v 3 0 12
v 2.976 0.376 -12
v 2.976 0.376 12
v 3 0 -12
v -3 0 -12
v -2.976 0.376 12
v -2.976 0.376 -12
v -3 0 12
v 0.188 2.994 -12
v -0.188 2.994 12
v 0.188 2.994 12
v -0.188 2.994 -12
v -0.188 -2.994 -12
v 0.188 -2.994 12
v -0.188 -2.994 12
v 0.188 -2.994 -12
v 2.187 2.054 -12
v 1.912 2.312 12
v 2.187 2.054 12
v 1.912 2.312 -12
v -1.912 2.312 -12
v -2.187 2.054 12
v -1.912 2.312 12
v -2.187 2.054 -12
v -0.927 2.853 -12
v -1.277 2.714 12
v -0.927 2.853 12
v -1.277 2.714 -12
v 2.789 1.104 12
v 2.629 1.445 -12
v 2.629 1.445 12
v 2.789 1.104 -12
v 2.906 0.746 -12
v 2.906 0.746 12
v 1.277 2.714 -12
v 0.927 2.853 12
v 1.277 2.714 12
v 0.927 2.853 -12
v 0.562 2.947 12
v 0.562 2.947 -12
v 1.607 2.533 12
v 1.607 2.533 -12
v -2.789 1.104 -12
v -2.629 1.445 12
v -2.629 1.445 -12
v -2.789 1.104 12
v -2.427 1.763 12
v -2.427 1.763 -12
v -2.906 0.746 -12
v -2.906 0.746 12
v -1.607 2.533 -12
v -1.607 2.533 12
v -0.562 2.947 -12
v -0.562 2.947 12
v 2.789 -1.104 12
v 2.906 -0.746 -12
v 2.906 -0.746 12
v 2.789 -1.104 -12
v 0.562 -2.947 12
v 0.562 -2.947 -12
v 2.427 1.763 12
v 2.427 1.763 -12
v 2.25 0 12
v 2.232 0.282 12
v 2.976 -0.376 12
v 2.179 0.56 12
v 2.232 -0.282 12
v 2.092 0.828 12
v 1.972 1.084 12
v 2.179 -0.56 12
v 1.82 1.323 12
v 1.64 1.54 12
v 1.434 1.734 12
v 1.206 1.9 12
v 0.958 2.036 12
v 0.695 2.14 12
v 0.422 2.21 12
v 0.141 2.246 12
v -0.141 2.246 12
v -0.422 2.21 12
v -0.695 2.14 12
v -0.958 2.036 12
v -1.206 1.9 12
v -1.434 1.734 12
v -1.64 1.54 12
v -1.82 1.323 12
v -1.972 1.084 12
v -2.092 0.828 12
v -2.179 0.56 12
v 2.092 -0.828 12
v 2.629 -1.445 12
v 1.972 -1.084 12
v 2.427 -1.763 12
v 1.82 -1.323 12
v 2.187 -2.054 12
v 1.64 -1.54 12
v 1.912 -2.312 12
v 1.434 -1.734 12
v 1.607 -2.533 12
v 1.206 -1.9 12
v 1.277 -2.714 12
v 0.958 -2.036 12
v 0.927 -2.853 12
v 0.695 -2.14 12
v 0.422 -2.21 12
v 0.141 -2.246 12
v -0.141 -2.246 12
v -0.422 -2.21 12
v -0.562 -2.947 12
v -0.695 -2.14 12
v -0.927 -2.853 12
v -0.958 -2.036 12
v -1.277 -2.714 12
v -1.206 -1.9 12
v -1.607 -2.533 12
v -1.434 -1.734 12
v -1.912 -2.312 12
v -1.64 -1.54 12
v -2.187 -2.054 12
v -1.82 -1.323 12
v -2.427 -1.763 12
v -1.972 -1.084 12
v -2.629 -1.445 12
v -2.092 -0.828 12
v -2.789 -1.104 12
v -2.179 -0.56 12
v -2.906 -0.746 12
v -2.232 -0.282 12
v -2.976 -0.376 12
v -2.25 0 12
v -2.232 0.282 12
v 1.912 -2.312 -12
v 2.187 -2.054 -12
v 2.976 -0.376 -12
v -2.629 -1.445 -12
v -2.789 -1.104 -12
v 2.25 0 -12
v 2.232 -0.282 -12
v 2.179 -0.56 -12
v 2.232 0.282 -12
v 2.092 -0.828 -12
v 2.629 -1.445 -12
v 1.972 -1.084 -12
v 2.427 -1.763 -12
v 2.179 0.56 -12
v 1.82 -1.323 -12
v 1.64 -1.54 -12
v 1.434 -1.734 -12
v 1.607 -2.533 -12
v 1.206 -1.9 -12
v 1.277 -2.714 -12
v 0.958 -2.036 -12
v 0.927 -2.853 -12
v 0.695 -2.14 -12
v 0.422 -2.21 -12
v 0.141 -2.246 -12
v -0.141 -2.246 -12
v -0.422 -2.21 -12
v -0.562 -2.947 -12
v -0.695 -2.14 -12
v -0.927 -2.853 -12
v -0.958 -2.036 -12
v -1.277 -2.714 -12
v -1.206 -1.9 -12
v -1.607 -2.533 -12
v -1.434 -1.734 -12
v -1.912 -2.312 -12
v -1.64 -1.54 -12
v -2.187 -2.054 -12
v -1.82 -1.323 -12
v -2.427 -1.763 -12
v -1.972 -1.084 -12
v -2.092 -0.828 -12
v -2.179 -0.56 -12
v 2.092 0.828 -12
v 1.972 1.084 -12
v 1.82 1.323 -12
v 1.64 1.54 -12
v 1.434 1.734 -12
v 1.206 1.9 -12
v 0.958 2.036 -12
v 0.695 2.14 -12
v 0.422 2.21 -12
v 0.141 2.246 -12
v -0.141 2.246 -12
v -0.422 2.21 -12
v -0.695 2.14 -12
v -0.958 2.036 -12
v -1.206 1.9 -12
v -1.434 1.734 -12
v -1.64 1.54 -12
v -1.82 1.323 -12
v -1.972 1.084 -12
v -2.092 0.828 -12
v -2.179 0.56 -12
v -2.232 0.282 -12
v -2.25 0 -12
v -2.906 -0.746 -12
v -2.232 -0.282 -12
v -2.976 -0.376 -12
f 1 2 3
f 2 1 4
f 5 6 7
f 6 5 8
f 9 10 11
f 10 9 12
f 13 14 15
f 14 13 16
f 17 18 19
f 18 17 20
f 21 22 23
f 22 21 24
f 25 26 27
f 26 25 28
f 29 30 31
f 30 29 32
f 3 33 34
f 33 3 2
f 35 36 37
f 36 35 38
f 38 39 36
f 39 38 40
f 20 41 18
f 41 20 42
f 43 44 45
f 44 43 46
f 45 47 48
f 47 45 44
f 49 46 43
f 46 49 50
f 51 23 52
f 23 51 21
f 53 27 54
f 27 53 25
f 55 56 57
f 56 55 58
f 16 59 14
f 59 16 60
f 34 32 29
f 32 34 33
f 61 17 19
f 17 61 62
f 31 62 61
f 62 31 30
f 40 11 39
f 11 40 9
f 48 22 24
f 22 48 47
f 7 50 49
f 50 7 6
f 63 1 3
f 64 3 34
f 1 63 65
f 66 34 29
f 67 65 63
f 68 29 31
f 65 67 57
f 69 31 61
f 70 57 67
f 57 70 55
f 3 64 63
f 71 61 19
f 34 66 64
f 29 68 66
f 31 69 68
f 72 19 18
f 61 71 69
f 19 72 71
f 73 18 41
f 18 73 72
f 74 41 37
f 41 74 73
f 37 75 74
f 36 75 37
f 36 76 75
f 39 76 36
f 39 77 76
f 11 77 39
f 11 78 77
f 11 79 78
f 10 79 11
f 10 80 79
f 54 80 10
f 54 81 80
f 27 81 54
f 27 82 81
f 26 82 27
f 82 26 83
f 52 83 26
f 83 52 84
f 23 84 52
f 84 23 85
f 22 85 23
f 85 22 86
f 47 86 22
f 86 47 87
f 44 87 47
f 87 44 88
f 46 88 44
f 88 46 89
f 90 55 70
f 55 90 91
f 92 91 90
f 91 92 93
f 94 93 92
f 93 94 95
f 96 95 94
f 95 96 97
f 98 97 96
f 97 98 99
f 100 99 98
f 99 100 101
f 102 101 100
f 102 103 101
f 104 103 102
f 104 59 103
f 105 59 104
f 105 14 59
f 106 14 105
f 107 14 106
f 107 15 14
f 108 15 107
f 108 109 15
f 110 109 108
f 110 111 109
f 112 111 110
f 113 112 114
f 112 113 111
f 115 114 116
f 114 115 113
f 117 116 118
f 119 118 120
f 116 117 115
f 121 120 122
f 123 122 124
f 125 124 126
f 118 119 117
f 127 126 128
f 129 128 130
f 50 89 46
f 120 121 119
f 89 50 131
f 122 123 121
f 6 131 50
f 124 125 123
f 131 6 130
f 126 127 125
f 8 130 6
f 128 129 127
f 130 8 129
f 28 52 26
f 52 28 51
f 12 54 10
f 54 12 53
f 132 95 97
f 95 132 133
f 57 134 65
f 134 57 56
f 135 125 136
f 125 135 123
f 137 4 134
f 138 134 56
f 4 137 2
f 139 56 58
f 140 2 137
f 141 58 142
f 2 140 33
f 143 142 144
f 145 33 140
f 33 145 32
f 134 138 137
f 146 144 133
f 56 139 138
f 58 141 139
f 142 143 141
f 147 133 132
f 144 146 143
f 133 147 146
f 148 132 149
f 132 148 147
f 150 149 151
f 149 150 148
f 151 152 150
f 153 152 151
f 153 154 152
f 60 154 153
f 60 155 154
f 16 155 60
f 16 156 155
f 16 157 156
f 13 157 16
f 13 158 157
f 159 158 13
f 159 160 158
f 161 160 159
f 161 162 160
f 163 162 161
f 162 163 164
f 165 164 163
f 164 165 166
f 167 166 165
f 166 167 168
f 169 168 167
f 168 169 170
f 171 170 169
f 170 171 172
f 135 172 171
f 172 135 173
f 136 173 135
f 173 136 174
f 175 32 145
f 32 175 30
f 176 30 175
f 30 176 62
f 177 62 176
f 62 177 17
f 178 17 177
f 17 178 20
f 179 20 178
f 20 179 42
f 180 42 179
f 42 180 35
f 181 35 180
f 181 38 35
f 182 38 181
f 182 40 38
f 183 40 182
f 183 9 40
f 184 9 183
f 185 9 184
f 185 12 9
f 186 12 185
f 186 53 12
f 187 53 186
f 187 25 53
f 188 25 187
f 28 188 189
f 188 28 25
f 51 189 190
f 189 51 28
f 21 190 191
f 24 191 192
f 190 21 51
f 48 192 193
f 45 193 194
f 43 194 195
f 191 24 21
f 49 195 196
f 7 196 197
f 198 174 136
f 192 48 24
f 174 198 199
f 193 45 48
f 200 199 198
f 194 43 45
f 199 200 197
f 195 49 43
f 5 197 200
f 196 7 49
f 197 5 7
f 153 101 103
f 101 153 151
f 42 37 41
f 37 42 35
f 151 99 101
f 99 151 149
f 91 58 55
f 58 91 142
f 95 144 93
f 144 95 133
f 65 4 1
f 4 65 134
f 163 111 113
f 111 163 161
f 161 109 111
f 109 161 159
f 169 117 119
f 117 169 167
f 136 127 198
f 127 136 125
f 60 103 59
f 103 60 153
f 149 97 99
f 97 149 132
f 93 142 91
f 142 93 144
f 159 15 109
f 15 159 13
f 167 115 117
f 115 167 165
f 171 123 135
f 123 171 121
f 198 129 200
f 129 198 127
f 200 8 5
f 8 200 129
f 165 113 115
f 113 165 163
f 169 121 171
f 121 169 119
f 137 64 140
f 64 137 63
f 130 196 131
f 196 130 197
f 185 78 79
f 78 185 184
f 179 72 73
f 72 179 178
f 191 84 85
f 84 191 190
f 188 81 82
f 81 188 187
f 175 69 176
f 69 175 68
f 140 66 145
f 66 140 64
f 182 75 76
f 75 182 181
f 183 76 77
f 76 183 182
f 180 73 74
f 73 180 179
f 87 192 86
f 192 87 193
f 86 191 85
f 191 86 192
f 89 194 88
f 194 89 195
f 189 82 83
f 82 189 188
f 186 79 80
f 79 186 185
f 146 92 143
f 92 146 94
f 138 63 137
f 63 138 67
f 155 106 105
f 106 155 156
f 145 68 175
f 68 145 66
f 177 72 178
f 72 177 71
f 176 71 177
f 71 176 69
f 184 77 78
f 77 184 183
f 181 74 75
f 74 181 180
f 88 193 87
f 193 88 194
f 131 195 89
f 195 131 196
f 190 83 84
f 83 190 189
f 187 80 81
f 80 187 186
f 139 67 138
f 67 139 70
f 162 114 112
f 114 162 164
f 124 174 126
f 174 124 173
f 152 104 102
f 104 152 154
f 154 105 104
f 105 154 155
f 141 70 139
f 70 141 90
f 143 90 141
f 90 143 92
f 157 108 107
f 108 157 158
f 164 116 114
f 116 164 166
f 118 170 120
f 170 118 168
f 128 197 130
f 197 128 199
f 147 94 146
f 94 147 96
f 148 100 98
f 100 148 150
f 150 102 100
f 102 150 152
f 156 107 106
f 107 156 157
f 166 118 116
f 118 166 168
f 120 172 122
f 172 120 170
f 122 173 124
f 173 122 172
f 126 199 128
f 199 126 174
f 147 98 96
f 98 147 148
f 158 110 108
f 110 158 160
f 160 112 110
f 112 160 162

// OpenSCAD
$fn = 50;


difference() {
	union() {
		translate(v = [0, 0, -12.0000000000]) {
			cylinder(h = 24, r = 3.0000000000);
		}
	}
	union() {
		translate(v = [0, 0, -100.0000000000]) {
			cylinder(h = 200, r = 2.2500000000);
		}
	}
}
